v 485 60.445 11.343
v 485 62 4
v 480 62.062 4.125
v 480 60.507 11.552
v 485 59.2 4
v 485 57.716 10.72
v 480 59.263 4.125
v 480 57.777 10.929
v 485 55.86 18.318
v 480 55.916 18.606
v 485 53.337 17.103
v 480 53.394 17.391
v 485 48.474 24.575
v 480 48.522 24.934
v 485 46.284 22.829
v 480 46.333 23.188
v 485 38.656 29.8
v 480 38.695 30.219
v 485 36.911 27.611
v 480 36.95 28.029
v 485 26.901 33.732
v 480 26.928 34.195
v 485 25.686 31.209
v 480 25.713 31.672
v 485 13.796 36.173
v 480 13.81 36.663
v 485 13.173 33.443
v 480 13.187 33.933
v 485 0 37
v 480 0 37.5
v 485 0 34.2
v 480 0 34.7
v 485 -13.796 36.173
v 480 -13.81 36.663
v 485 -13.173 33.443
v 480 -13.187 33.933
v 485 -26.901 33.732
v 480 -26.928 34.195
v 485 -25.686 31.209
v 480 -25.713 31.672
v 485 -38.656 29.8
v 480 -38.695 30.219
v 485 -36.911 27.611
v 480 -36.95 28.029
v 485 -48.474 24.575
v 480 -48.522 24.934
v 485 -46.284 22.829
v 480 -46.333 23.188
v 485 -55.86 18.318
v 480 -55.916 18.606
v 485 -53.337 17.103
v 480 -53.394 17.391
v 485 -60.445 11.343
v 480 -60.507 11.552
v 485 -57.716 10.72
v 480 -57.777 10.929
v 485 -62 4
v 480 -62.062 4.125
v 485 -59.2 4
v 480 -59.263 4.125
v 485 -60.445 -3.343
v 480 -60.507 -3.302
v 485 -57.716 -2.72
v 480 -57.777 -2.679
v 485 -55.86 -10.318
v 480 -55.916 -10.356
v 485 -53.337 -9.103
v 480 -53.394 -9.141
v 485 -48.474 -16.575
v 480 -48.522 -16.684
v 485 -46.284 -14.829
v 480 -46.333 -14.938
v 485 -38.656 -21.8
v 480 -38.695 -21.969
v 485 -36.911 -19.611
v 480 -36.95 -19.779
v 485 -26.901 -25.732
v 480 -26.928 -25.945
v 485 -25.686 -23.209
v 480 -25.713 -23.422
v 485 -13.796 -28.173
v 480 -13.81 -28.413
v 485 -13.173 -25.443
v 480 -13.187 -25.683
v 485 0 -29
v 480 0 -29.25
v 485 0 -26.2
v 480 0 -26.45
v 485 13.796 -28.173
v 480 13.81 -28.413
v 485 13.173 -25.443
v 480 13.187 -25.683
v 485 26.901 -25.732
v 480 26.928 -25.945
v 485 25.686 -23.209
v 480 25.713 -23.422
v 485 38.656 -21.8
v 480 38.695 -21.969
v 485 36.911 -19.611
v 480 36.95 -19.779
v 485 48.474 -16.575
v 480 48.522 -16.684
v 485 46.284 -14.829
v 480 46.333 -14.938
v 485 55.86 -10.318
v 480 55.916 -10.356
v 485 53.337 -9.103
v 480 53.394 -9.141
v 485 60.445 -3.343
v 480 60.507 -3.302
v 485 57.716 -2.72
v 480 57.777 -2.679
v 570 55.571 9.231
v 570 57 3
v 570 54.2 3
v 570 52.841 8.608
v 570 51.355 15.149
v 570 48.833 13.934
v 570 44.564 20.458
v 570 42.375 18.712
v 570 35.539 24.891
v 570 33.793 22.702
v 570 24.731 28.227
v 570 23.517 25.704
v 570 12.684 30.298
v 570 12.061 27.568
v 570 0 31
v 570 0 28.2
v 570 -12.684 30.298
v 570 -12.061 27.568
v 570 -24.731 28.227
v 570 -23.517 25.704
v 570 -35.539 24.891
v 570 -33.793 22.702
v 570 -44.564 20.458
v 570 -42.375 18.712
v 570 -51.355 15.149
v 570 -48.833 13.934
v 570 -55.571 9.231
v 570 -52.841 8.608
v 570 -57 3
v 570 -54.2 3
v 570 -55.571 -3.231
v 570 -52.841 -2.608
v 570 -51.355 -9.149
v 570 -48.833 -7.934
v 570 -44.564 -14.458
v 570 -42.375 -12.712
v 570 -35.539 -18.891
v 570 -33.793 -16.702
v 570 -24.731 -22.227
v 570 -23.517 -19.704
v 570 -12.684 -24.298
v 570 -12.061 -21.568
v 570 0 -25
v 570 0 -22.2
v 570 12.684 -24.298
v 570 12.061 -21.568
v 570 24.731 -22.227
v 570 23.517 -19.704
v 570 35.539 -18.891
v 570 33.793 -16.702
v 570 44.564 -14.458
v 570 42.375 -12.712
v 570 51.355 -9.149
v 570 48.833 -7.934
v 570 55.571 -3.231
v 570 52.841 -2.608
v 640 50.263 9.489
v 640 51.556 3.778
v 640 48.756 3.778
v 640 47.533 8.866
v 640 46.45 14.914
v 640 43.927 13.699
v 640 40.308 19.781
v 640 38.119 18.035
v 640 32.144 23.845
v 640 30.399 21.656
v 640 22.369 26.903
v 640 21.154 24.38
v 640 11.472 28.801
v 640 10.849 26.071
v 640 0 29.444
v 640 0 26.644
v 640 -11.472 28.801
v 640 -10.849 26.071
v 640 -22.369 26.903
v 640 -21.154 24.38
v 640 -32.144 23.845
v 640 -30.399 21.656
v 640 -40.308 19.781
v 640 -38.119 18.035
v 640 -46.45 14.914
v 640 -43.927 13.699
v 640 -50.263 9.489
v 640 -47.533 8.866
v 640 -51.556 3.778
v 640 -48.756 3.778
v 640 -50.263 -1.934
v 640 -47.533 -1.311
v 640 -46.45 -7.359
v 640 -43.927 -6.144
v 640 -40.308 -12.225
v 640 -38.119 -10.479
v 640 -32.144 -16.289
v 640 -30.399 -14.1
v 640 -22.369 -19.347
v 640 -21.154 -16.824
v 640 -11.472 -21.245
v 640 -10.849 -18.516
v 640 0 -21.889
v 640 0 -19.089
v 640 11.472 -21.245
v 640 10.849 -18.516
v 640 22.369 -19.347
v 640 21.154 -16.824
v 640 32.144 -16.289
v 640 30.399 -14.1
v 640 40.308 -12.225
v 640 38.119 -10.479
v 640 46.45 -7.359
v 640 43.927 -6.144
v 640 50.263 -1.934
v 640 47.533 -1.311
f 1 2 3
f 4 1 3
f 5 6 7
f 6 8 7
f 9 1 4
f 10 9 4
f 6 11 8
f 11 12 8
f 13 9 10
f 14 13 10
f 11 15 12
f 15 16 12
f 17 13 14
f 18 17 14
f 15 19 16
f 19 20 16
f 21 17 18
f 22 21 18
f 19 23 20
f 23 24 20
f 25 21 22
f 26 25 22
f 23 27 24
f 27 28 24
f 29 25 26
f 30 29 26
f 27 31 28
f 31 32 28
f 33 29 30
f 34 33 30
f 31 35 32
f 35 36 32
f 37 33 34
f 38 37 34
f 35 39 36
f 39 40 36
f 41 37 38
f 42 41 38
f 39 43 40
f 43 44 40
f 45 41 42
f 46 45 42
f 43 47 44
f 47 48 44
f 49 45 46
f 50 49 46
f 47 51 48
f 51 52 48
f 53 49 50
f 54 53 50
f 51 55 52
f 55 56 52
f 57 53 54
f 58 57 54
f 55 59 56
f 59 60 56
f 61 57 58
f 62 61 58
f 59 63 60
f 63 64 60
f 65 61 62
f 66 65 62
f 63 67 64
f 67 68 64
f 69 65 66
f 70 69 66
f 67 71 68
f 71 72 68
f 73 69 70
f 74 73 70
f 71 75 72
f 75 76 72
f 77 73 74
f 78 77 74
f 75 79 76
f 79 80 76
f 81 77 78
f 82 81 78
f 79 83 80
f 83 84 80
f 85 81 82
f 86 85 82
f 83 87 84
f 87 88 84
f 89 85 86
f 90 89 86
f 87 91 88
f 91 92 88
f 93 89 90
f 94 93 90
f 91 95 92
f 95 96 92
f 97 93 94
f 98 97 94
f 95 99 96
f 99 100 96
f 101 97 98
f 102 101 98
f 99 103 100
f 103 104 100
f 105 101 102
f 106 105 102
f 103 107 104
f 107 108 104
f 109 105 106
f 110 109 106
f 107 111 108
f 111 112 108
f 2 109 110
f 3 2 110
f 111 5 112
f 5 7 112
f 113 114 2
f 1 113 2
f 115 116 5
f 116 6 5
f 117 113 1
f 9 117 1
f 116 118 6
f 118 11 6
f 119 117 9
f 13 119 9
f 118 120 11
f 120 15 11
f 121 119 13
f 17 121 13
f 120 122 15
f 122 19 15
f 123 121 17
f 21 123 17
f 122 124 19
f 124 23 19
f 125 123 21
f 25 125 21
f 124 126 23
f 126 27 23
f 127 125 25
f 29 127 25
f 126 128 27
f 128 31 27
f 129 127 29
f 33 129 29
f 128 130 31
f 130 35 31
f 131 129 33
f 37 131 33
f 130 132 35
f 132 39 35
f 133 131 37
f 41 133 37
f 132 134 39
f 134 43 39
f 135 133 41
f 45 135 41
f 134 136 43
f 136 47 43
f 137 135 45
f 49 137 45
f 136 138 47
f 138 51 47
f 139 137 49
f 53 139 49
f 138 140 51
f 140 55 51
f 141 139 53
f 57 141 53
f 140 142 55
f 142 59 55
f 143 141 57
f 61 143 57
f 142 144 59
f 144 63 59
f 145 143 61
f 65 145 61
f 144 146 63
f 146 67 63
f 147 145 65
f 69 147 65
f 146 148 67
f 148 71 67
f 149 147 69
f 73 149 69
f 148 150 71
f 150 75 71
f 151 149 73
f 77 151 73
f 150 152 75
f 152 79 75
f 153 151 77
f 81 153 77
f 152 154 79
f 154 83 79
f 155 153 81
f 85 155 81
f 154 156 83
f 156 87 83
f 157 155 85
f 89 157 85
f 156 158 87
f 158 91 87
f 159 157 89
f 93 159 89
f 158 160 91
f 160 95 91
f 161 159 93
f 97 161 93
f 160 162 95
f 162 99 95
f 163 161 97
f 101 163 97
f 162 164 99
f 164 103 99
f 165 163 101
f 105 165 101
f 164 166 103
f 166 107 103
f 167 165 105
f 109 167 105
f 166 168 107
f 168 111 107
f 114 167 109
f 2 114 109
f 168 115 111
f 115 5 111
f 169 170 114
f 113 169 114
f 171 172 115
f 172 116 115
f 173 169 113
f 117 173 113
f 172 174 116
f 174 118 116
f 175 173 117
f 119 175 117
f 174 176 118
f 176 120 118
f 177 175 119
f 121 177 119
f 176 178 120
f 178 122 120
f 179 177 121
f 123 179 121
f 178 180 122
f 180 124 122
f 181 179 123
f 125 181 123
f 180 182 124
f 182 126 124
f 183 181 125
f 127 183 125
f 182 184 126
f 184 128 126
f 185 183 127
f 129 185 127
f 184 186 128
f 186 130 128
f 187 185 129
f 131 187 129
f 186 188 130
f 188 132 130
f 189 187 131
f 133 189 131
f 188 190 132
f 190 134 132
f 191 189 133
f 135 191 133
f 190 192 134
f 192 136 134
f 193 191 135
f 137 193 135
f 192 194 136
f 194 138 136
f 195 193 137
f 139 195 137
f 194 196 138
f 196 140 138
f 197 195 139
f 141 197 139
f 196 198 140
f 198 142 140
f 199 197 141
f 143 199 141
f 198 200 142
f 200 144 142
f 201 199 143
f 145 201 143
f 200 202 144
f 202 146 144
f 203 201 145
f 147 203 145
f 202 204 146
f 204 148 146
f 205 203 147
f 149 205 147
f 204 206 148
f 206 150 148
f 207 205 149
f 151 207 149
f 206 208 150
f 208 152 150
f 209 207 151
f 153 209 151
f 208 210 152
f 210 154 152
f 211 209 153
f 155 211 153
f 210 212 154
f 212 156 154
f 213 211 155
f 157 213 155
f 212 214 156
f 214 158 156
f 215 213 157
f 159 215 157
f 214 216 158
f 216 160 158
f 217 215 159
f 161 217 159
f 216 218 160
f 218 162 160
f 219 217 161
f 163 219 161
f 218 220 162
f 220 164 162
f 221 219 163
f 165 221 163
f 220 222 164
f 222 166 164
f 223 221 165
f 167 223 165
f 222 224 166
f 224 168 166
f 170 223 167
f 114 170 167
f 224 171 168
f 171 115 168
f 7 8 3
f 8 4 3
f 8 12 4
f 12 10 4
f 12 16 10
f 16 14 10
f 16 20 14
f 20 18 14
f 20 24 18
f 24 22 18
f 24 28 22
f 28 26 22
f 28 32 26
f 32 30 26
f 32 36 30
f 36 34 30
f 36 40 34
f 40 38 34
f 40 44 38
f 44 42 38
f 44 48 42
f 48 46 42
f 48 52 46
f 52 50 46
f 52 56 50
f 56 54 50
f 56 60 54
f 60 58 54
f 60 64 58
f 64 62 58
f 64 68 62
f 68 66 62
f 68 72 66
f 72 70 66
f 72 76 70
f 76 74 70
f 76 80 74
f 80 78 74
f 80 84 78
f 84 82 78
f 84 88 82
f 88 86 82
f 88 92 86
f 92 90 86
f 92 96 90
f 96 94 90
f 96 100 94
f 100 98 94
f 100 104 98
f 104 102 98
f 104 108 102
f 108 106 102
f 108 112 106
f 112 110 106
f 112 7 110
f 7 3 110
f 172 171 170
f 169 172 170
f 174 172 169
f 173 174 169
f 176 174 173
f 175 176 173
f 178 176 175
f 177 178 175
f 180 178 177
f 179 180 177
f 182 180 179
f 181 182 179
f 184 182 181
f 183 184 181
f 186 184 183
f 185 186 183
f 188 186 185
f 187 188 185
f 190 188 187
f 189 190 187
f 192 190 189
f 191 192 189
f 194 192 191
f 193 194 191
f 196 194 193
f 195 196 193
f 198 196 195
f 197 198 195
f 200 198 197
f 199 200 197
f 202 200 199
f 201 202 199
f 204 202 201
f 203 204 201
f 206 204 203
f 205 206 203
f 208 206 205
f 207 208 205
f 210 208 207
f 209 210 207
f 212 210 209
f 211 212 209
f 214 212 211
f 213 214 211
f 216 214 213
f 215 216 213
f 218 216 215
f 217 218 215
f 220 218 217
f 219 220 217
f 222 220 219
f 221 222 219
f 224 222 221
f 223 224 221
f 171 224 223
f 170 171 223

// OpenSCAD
polyhedron(points=[[480.0, 62.0625, 4.125], [480.0, 60.506464, 11.551636], [480.0, 55.91638, 18.60587], [480.0, 48.522416, 24.933972], [480.0, 38.695336, 30.218626], [480.0, 26.92791, 34.194836], [480.0, 13.810205, 36.663219], [480.0, 0.0, 37.5], [480.0, -13.810205, 36.663219], [480.0, -26.92791, 34.194836], [480.0, -38.695336, 30.218626], [480.0, -48.522416, 24.933972], [480.0, -55.91638, 18.60587], [480.0, -60.506464, 11.551636], [480.0, -62.0625, 4.125], [480.0, -60.506464, -3.301636], [480.0, -55.91638, -10.35587], [480.0, -48.522416, -16.683972], [480.0, -38.695336, -21.968626], [480.0, -26.92791, -25.944836], [480.0, -13.810205, -28.413219], [480.0, -0.0, -29.25], [480.0, 13.810205, -28.413219], [480.0, 26.92791, -25.944836], [480.0, 38.695336, -21.968626], [480.0, 48.522416, -16.683972], [480.0, 55.91638, -10.35587], [480.0, 60.506464, -3.301636], [480.0, 59.2625, 4.125], [480.0, 57.776665, 10.928578], [480.0, 53.393668, 17.390995], [480.0, 46.333288, 23.188201], [480.0, 36.949564, 28.029498], [480.0, 25.713035, 31.672123], [480.0, 13.187147, 33.933421], [480.0, 0.0, 34.7], [480.0, -13.187147, 33.933421], [480.0, -25.713035, 31.672123], [480.0, -36.949564, 28.029498], [480.0, -46.333288, 23.188201], [480.0, -53.393668, 17.390995], [480.0, -57.776665, 10.928578], [480.0, -59.2625, 4.125], [480.0, -57.776665, -2.678578], [480.0, -53.393668, -9.140995], [480.0, -46.333288, -14.938201], [480.0, -36.949564, -19.779498], [480.0, -25.713035, -23.422123], [480.0, -13.187147, -25.683421], [480.0, -0.0, -26.45], [480.0, 13.187147, -25.683421], [480.0, 25.713035, -23.422123], [480.0, 36.949564, -19.779498], [480.0, 46.333288, -14.938201], [480.0, 53.393668, -9.140995], [480.0, 57.776665, -2.678578], [485.0, 62.0, 4.0], [485.0, 60.445531, 11.343191], [485.0, 55.86007, 18.318163], [485.0, 48.473552, 24.575163], [485.0, 38.656368, 29.800439], [485.0, 26.900792, 33.731973], [485.0, 13.796298, 36.172621], [485.0, 0.0, 37.0], [485.0, -13.796298, 36.172621], [485.0, -26.900792, 33.731973], [485.0, -38.656368, 29.800439], [485.0, -48.473552, 24.575163], [485.0, -55.86007, 18.318163], [485.0, -60.445531, 11.343191], [485.0, -62.0, 4.0], [485.0, -60.445531, -3.343191], [485.0, -55.86007, -10.318163], [485.0, -48.473552, -16.575163], [485.0, -38.656368, -21.800439], [485.0, -26.900792, -25.731973], [485.0, -13.796298, -28.172621], [485.0, -0.0, -29.0], [485.0, 13.796298, -28.172621], [485.0, 26.900792, -25.731973], [485.0, 38.656368, -21.800439], [485.0, 48.473552, -16.575163], [485.0, 55.86007, -10.318163], [485.0, 60.445531, -3.343191], [485.0, 59.2, 4.0], [485.0, 57.715732, 10.720132], [485.0, 53.337357, 17.103289], [485.0, 46.284424, 22.829392], [485.0, 36.910596, 27.611311], [485.0, 25.685917, 31.20926], [485.0, 13.173239, 33.442823], [485.0, 0.0, 34.2], [485.0, -13.173239, 33.442823], [485.0, -25.685917, 31.20926], [485.0, -36.910596, 27.611311], [485.0, -46.284424, 22.829392], [485.0, -53.337357, 17.103289], [485.0, -57.715732, 10.720132], [485.0, -59.2, 4.0], [485.0, -57.715732, -2.720132], [485.0, -53.337357, -9.103289], [485.0, -46.284424, -14.829392], [485.0, -36.910596, -19.611311], [485.0, -25.685917, -23.20926], [485.0, -13.173239, -25.442823], [485.0, -0.0, -26.2], [485.0, 13.173239, -25.442823], [485.0, 25.685917, -23.20926], [485.0, 36.910596, -19.611311], [485.0, 46.284424, -14.829392], [485.0, 53.337357, -9.103289], [485.0, 57.715732, -2.720132], [570.0, 57.0, 3.0], [570.0, 55.570891, 9.230586], [570.0, 51.355225, 15.148745], [570.0, 44.564395, 20.457714], [570.0, 35.538919, 24.891282], [570.0, 24.731373, 28.227128], [570.0, 12.683693, 30.297982], [570.0, 0.0, 31.0], [570.0, -12.683693, 30.297982], [570.0, -24.731373, 28.227128], [570.0, -35.538919, 24.891282], [570.0, -44.564395, 20.457714], [570.0, -51.355225, 15.148745], [570.0, -55.570891, 9.230586], [570.0, -57.0, 3.0], [570.0, -55.570891, -3.230586], [570.0, -51.355225, -9.148745], [570.0, -44.564395, -14.457714], [570.0, -35.538919, -18.891282], [570.0, -24.731373, -22.227128], [570.0, -12.683693, -24.297982], [570.0, -0.0, -25.0], [570.0, 12.683693, -24.297982], [570.0, 24.731373, -22.227128], [570.0, 35.538919, -18.891282], [570.0, 44.564395, -14.457714], [570.0, 51.355225, -9.148745], [570.0, 55.570891, -3.230586], [570.0, 54.2, 3.0], [570.0, 52.841093, 8.607528], [570.0, 48.832513, 13.93387], [570.0, 42.375266, 18.711943], [570.0, 33.793147, 22.702153], [570.0, 23.516499, 25.704415], [570.0, 12.060635, 27.568183], [570.0, 0.0, 28.2], [570.0, -12.060635, 27.568183], [570.0, -23.516499, 25.704415], [570.0, -33.793147, 22.702153], [570.0, -42.375266, 18.711943], [570.0, -48.832513, 13.93387], [570.0, -52.841093, 8.607528], [570.0, -54.2, 3.0], [570.0, -52.841093, -2.607528], [570.0, -48.832513, -7.93387], [570.0, -42.375266, -12.711943], [570.0, -33.793147, -16.702153], [570.0, -23.516499, -19.704415], [570.0, -12.060635, -21.568183], [570.0, -0.0, -22.2], [570.0, 12.060635, -21.568183], [570.0, 23.516499, -19.704415], [570.0, 33.793147, -16.702153], [570.0, 42.375266, -12.711943], [570.0, 48.832513, -7.93387], [570.0, 52.841093, -2.607528], [640.0, 51.555556, 3.777778], [640.0, 50.26295, 9.489148], [640.0, 46.449951, 14.914127], [640.0, 40.307756, 19.780683], [640.0, 32.144363, 23.844786], [640.0, 22.369117, 26.902645], [640.0, 11.47219, 28.800928], [640.0, 0.0, 29.444444], [640.0, -11.47219, 28.800928], [640.0, -22.369117, 26.902645], [640.0, -32.144363, 23.844786], [640.0, -40.307756, 19.780683], [640.0, -46.449951, 14.914127], [640.0, -50.26295, 9.489148], [640.0, -51.555556, 3.777778], [640.0, -50.26295, -1.933593], [640.0, -46.449951, -7.358572], [640.0, -40.307756, -12.225127], [640.0, -32.144363, -16.28923], [640.0, -22.369117, -19.34709], [640.0, -11.47219, -21.245372], [640.0, -0.0, -21.888889], [640.0, 11.47219, -21.245372], [640.0, 22.369117, -19.34709], [640.0, 32.144363, -16.28923], [640.0, 40.307756, -12.225127], [640.0, 46.449951, -7.358572], [640.0, 50.26295, -1.933593], [640.0, 48.755556, 3.777778], [640.0, 47.533152, 8.86609], [640.0, 43.927238, 13.699253], [640.0, 38.118628, 18.034911], [640.0, 30.398592, 21.655658], [640.0, 21.154243, 24.379933], [640.0, 10.849132, 26.071129], [640.0, 0.0, 26.644444], [640.0, -10.849132, 26.071129], [640.0, -21.154243, 24.379933], [640.0, -30.398592, 21.655658], [640.0, -38.118628, 18.034911], [640.0, -43.927238, 13.699253], [640.0, -47.533152, 8.86609], [640.0, -48.755556, 3.777778], [640.0, -47.533152, -1.310534], [640.0, -43.927238, -6.143697], [640.0, -38.118628, -10.479356], [640.0, -30.398592, -14.100102], [640.0, -21.154243, -16.824377], [640.0, -10.849132, -18.515574], [640.0, -0.0, -19.088889], [640.0, 10.849132, -18.515574], [640.0, 21.154243, -16.824377], [640.0, 30.398592, -14.100102], [640.0, 38.118628, -10.479356], [640.0, 43.927238, -6.143697], [640.0, 47.533152, -1.310534]], faces=[[0, 56, 57], [0, 57, 1], [28, 85, 84], [28, 29, 85], [1, 57, 58], [1, 58, 2], [29, 86, 85], [29, 30, 86], [2, 58, 59], [2, 59, 3], [30, 87, 86], [30, 31, 87], [3, 59, 60], [3, 60, 4], [31, 88, 87], [31, 32, 88], [4, 60, 61], [4, 61, 5], [32, 89, 88], [32, 33, 89], [5, 61, 62], [5, 62, 6], [33, 90, 89], [33, 34, 90], [6, 62, 63], [6, 63, 7], [34, 91, 90], [34, 35, 91], [7, 63, 64], [7, 64, 8], [35, 92, 91], [35, 36, 92], [8, 64, 65], [8, 65, 9], [36, 93, 92], [36, 37, 93], [9, 65, 66], [9, 66, 10], [37, 94, 93], [37, 38, 94], [10, 66, 67], [10, 67, 11], [38, 95, 94], [38, 39, 95], [11, 67, 68], [11, 68, 12], [39, 96, 95], [39, 40, 96], [12, 68, 69], [12, 69, 13], [40, 97, 96], [40, 41, 97], [13, 69, 70], [13, 70, 14], [41, 98, 97], [41, 42, 98], [14, 70, 71], [14, 71, 15], [42, 99, 98], [42, 43, 99], [15, 71, 72], [15, 72, 16], [43, 100, 99], [43, 44, 100], [16, 72, 73], [16, 73, 17], [44, 101, 100], [44, 45, 101], [17, 73, 74], [17, 74, 18], [45, 102, 101], [45, 46, 102], [18, 74, 75], [18, 75, 19], [46, 103, 102], [46, 47, 103], [19, 75, 76], [19, 76, 20], [47, 104, 103], [47, 48, 104], [20, 76, 77], [20, 77, 21], [48, 105, 104], [48, 49, 105], [21, 77, 78], [21, 78, 22], [49, 106, 105], [49, 50, 106], [22, 78, 79], [22, 79, 23], [50, 107, 106], [50, 51, 107], [23, 79, 80], [23, 80, 24], [51, 108, 107], [51, 52, 108], [24, 80, 81], [24, 81, 25], [52, 109, 108], [52, 53, 109], [25, 81, 82], [25, 82, 26], [53, 110, 109], [53, 54, 110], [26, 82, 83], [26, 83, 27], [54, 111, 110], [54, 55, 111], [27, 83, 56], [27, 56, 0], [55, 84, 111], [55, 28, 84], [56, 112, 113], [56, 113, 57], [84, 141, 140], [84, 85, 141], [57, 113, 114], [57, 114, 58], [85, 142, 141], [85, 86, 142], [58, 114, 115], [58, 115, 59], [86, 143, 142], [86, 87, 143], [59, 115, 116], [59, 116, 60], [87, 144, 143], [87, 88, 144], [60, 116, 117], [60, 117, 61], [88, 145, 144], [88, 89, 145], [61, 117, 118], [61, 118, 62], [89, 146, 145], [89, 90, 146], [62, 118, 119], [62, 119, 63], [90, 147, 146], [90, 91, 147], [63, 119, 120], [63, 120, 64], [91, 148, 147], [91, 92, 148], [64, 120, 121], [64, 121, 65], [92, 149, 148], [92, 93, 149], [65, 121, 122], [65, 122, 66], [93, 150, 149], [93, 94, 150], [66, 122, 123], [66, 123, 67], [94, 151, 150], [94, 95, 151], [67, 123, 124], [67, 124, 68], [95, 152, 151], [95, 96, 152], [68, 124, 125], [68, 125, 69], [96, 153, 152], [96, 97, 153], [69, 125, 126], [69, 126, 70], [97, 154, 153], [97, 98, 154], [70, 126, 127], [70, 127, 71], [98, 155, 154], [98, 99, 155], [71, 127, 128], [71, 128, 72], [99, 156, 155], [99, 100, 156], [72, 128, 129], [72, 129, 73], [100, 157, 156], [100, 101, 157], [73, 129, 130], [73, 130, 74], [101, 158, 157], [101, 102, 158], [74, 130, 131], [74, 131, 75], [102, 159, 158], [102, 103, 159], [75, 131, 132], [75, 132, 76], [103, 160, 159], [103, 104, 160], [76, 132, 133], [76, 133, 77], [104, 161, 160], [104, 105, 161], [77, 133, 134], [77, 134, 78], [105, 162, 161], [105, 106, 162], [78, 134, 135], [78, 135, 79], [106, 163, 162], [106, 107, 163], [79, 135, 136], [79, 136, 80], [107, 164, 163], [107, 108, 164], [80, 136, 137], [80, 137, 81], [108, 165, 164], [108, 109, 165], [81, 137, 138], [81, 138, 82], [109, 166, 165], [109, 110, 166], [82, 138, 139], [82, 139, 83], [110, 167, 166], [110, 111, 167], [83, 139, 112], [83, 112, 56], [111, 140, 167], [111, 84, 140], [112, 168, 169], [112, 169, 113], [140, 197, 196], [140, 141, 197], [113, 169, 170], [113, 170, 114], [141, 198, 197], [141, 142, 198], [114, 170, 171], [114, 171, 115], [142, 199, 198], [142, 143, 199], [115, 171, 172], [115, 172, 116], [143, 200, 199], [143, 144, 200], [116, 172, 173], [116, 173, 117], [144, 201, 200], [144, 145, 201], [117, 173, 174], [117, 174, 118], [145, 202, 201], [145, 146, 202], [118, 174, 175], [118, 175, 119], [146, 203, 202], [146, 147, 203], [119, 175, 176], [119, 176, 120], [147, 204, 203], [147, 148, 204], [120, 176, 177], [120, 177, 121], [148, 205, 204], [148, 149, 205], [121, 177, 178], [121, 178, 122], [149, 206, 205], [149, 150, 206], [122, 178, 179], [122, 179, 123], [150, 207, 206], [150, 151, 207], [123, 179, 180], [123, 180, 124], [151, 208, 207], [151, 152, 208], [124, 180, 181], [124, 181, 125], [152, 209, 208], [152, 153, 209], [125, 181, 182], [125, 182, 126], [153, 210, 209], [153, 154, 210], [126, 182, 183], [126, 183, 127], [154, 211, 210], [154, 155, 211], [127, 183, 184], [127, 184, 128], [155, 212, 211], [155, 156, 212], [128, 184, 185], [128, 185, 129], [156, 213, 212], [156, 157, 213], [129, 185, 186], [129, 186, 130], [157, 214, 213], [157, 158, 214], [130, 186, 187], [130, 187, 131], [158, 215, 214], [158, 159, 215], [131, 187, 188], [131, 188, 132], [159, 216, 215], [159, 160, 216], [132, 188, 189], [132, 189, 133], [160, 217, 216], [160, 161, 217], [133, 189, 190], [133, 190, 134], [161, 218, 217], [161, 162, 218], [134, 190, 191], [134, 191, 135], [162, 219, 218], [162, 163, 219], [135, 191, 192], [135, 192, 136], [163, 220, 219], [163, 164, 220], [136, 192, 193], [136, 193, 137], [164, 221, 220], [164, 165, 221], [137, 193, 194], [137, 194, 138], [165, 222, 221], [165, 166, 222], [138, 194, 195], [138, 195, 139], [166, 223, 222], [166, 167, 223], [139, 195, 168], [139, 168, 112], [167, 196, 223], [167, 140, 196], [0, 29, 28], [0, 1, 29], [1, 30, 29], [1, 2, 30], [2, 31, 30], [2, 3, 31], [3, 32, 31], [3, 4, 32], [4, 33, 32], [4, 5, 33], [5, 34, 33], [5, 6, 34], [6, 35, 34], [6, 7, 35], [7, 36, 35], [7, 8, 36], [8, 37, 36], [8, 9, 37], [9, 38, 37], [9, 10, 38], [10, 39, 38], [10, 11, 39], [11, 40, 39], [11, 12, 40], [12, 41, 40], [12, 13, 41], [13, 42, 41], [13, 14, 42], [14, 43, 42], [14, 15, 43], [15, 44, 43], [15, 16, 44], [16, 45, 44], [16, 17, 45], [17, 46, 45], [17, 18, 46], [18, 47, 46], [18, 19, 47], [19, 48, 47], [19, 20, 48], [20, 49, 48], [20, 21, 49], [21, 50, 49], [21, 22, 50], [22, 51, 50], [22, 23, 51], [23, 52, 51], [23, 24, 52], [24, 53, 52], [24, 25, 53], [25, 54, 53], [25, 26, 54], [26, 55, 54], [26, 27, 55], [27, 28, 55], [27, 0, 28], [168, 196, 197], [168, 197, 169], [169, 197, 198], [169, 198, 170], [170, 198, 199], [170, 199, 171], [171, 199, 200], [171, 200, 172], [172, 200, 201], [172, 201, 173], [173, 201, 202], [173, 202, 174], [174, 202, 203], [174, 203, 175], [175, 203, 204], [175, 204, 176], [176, 204, 205], [176, 205, 177], [177, 205, 206], [177, 206, 178], [178, 206, 207], [178, 207, 179], [179, 207, 208], [179, 208, 180], [180, 208, 209], [180, 209, 181], [181, 209, 210], [181, 210, 182], [182, 210, 211], [182, 211, 183], [183, 211, 212], [183, 212, 184], [184, 212, 213], [184, 213, 185], [185, 213, 214], [185, 214, 186], [186, 214, 215], [186, 215, 187], [187, 215, 216], [187, 216, 188], [188, 216, 217], [188, 217, 189], [189, 217, 218], [189, 218, 190], [190, 218, 219], [190, 219, 191], [191, 219, 220], [191, 220, 192], [192, 220, 221], [192, 221, 193], [193, 221, 222], [193, 222, 194], [194, 222, 223], [194, 223, 195], [195, 223, 196], [195, 196, 168]], convexity=20);
